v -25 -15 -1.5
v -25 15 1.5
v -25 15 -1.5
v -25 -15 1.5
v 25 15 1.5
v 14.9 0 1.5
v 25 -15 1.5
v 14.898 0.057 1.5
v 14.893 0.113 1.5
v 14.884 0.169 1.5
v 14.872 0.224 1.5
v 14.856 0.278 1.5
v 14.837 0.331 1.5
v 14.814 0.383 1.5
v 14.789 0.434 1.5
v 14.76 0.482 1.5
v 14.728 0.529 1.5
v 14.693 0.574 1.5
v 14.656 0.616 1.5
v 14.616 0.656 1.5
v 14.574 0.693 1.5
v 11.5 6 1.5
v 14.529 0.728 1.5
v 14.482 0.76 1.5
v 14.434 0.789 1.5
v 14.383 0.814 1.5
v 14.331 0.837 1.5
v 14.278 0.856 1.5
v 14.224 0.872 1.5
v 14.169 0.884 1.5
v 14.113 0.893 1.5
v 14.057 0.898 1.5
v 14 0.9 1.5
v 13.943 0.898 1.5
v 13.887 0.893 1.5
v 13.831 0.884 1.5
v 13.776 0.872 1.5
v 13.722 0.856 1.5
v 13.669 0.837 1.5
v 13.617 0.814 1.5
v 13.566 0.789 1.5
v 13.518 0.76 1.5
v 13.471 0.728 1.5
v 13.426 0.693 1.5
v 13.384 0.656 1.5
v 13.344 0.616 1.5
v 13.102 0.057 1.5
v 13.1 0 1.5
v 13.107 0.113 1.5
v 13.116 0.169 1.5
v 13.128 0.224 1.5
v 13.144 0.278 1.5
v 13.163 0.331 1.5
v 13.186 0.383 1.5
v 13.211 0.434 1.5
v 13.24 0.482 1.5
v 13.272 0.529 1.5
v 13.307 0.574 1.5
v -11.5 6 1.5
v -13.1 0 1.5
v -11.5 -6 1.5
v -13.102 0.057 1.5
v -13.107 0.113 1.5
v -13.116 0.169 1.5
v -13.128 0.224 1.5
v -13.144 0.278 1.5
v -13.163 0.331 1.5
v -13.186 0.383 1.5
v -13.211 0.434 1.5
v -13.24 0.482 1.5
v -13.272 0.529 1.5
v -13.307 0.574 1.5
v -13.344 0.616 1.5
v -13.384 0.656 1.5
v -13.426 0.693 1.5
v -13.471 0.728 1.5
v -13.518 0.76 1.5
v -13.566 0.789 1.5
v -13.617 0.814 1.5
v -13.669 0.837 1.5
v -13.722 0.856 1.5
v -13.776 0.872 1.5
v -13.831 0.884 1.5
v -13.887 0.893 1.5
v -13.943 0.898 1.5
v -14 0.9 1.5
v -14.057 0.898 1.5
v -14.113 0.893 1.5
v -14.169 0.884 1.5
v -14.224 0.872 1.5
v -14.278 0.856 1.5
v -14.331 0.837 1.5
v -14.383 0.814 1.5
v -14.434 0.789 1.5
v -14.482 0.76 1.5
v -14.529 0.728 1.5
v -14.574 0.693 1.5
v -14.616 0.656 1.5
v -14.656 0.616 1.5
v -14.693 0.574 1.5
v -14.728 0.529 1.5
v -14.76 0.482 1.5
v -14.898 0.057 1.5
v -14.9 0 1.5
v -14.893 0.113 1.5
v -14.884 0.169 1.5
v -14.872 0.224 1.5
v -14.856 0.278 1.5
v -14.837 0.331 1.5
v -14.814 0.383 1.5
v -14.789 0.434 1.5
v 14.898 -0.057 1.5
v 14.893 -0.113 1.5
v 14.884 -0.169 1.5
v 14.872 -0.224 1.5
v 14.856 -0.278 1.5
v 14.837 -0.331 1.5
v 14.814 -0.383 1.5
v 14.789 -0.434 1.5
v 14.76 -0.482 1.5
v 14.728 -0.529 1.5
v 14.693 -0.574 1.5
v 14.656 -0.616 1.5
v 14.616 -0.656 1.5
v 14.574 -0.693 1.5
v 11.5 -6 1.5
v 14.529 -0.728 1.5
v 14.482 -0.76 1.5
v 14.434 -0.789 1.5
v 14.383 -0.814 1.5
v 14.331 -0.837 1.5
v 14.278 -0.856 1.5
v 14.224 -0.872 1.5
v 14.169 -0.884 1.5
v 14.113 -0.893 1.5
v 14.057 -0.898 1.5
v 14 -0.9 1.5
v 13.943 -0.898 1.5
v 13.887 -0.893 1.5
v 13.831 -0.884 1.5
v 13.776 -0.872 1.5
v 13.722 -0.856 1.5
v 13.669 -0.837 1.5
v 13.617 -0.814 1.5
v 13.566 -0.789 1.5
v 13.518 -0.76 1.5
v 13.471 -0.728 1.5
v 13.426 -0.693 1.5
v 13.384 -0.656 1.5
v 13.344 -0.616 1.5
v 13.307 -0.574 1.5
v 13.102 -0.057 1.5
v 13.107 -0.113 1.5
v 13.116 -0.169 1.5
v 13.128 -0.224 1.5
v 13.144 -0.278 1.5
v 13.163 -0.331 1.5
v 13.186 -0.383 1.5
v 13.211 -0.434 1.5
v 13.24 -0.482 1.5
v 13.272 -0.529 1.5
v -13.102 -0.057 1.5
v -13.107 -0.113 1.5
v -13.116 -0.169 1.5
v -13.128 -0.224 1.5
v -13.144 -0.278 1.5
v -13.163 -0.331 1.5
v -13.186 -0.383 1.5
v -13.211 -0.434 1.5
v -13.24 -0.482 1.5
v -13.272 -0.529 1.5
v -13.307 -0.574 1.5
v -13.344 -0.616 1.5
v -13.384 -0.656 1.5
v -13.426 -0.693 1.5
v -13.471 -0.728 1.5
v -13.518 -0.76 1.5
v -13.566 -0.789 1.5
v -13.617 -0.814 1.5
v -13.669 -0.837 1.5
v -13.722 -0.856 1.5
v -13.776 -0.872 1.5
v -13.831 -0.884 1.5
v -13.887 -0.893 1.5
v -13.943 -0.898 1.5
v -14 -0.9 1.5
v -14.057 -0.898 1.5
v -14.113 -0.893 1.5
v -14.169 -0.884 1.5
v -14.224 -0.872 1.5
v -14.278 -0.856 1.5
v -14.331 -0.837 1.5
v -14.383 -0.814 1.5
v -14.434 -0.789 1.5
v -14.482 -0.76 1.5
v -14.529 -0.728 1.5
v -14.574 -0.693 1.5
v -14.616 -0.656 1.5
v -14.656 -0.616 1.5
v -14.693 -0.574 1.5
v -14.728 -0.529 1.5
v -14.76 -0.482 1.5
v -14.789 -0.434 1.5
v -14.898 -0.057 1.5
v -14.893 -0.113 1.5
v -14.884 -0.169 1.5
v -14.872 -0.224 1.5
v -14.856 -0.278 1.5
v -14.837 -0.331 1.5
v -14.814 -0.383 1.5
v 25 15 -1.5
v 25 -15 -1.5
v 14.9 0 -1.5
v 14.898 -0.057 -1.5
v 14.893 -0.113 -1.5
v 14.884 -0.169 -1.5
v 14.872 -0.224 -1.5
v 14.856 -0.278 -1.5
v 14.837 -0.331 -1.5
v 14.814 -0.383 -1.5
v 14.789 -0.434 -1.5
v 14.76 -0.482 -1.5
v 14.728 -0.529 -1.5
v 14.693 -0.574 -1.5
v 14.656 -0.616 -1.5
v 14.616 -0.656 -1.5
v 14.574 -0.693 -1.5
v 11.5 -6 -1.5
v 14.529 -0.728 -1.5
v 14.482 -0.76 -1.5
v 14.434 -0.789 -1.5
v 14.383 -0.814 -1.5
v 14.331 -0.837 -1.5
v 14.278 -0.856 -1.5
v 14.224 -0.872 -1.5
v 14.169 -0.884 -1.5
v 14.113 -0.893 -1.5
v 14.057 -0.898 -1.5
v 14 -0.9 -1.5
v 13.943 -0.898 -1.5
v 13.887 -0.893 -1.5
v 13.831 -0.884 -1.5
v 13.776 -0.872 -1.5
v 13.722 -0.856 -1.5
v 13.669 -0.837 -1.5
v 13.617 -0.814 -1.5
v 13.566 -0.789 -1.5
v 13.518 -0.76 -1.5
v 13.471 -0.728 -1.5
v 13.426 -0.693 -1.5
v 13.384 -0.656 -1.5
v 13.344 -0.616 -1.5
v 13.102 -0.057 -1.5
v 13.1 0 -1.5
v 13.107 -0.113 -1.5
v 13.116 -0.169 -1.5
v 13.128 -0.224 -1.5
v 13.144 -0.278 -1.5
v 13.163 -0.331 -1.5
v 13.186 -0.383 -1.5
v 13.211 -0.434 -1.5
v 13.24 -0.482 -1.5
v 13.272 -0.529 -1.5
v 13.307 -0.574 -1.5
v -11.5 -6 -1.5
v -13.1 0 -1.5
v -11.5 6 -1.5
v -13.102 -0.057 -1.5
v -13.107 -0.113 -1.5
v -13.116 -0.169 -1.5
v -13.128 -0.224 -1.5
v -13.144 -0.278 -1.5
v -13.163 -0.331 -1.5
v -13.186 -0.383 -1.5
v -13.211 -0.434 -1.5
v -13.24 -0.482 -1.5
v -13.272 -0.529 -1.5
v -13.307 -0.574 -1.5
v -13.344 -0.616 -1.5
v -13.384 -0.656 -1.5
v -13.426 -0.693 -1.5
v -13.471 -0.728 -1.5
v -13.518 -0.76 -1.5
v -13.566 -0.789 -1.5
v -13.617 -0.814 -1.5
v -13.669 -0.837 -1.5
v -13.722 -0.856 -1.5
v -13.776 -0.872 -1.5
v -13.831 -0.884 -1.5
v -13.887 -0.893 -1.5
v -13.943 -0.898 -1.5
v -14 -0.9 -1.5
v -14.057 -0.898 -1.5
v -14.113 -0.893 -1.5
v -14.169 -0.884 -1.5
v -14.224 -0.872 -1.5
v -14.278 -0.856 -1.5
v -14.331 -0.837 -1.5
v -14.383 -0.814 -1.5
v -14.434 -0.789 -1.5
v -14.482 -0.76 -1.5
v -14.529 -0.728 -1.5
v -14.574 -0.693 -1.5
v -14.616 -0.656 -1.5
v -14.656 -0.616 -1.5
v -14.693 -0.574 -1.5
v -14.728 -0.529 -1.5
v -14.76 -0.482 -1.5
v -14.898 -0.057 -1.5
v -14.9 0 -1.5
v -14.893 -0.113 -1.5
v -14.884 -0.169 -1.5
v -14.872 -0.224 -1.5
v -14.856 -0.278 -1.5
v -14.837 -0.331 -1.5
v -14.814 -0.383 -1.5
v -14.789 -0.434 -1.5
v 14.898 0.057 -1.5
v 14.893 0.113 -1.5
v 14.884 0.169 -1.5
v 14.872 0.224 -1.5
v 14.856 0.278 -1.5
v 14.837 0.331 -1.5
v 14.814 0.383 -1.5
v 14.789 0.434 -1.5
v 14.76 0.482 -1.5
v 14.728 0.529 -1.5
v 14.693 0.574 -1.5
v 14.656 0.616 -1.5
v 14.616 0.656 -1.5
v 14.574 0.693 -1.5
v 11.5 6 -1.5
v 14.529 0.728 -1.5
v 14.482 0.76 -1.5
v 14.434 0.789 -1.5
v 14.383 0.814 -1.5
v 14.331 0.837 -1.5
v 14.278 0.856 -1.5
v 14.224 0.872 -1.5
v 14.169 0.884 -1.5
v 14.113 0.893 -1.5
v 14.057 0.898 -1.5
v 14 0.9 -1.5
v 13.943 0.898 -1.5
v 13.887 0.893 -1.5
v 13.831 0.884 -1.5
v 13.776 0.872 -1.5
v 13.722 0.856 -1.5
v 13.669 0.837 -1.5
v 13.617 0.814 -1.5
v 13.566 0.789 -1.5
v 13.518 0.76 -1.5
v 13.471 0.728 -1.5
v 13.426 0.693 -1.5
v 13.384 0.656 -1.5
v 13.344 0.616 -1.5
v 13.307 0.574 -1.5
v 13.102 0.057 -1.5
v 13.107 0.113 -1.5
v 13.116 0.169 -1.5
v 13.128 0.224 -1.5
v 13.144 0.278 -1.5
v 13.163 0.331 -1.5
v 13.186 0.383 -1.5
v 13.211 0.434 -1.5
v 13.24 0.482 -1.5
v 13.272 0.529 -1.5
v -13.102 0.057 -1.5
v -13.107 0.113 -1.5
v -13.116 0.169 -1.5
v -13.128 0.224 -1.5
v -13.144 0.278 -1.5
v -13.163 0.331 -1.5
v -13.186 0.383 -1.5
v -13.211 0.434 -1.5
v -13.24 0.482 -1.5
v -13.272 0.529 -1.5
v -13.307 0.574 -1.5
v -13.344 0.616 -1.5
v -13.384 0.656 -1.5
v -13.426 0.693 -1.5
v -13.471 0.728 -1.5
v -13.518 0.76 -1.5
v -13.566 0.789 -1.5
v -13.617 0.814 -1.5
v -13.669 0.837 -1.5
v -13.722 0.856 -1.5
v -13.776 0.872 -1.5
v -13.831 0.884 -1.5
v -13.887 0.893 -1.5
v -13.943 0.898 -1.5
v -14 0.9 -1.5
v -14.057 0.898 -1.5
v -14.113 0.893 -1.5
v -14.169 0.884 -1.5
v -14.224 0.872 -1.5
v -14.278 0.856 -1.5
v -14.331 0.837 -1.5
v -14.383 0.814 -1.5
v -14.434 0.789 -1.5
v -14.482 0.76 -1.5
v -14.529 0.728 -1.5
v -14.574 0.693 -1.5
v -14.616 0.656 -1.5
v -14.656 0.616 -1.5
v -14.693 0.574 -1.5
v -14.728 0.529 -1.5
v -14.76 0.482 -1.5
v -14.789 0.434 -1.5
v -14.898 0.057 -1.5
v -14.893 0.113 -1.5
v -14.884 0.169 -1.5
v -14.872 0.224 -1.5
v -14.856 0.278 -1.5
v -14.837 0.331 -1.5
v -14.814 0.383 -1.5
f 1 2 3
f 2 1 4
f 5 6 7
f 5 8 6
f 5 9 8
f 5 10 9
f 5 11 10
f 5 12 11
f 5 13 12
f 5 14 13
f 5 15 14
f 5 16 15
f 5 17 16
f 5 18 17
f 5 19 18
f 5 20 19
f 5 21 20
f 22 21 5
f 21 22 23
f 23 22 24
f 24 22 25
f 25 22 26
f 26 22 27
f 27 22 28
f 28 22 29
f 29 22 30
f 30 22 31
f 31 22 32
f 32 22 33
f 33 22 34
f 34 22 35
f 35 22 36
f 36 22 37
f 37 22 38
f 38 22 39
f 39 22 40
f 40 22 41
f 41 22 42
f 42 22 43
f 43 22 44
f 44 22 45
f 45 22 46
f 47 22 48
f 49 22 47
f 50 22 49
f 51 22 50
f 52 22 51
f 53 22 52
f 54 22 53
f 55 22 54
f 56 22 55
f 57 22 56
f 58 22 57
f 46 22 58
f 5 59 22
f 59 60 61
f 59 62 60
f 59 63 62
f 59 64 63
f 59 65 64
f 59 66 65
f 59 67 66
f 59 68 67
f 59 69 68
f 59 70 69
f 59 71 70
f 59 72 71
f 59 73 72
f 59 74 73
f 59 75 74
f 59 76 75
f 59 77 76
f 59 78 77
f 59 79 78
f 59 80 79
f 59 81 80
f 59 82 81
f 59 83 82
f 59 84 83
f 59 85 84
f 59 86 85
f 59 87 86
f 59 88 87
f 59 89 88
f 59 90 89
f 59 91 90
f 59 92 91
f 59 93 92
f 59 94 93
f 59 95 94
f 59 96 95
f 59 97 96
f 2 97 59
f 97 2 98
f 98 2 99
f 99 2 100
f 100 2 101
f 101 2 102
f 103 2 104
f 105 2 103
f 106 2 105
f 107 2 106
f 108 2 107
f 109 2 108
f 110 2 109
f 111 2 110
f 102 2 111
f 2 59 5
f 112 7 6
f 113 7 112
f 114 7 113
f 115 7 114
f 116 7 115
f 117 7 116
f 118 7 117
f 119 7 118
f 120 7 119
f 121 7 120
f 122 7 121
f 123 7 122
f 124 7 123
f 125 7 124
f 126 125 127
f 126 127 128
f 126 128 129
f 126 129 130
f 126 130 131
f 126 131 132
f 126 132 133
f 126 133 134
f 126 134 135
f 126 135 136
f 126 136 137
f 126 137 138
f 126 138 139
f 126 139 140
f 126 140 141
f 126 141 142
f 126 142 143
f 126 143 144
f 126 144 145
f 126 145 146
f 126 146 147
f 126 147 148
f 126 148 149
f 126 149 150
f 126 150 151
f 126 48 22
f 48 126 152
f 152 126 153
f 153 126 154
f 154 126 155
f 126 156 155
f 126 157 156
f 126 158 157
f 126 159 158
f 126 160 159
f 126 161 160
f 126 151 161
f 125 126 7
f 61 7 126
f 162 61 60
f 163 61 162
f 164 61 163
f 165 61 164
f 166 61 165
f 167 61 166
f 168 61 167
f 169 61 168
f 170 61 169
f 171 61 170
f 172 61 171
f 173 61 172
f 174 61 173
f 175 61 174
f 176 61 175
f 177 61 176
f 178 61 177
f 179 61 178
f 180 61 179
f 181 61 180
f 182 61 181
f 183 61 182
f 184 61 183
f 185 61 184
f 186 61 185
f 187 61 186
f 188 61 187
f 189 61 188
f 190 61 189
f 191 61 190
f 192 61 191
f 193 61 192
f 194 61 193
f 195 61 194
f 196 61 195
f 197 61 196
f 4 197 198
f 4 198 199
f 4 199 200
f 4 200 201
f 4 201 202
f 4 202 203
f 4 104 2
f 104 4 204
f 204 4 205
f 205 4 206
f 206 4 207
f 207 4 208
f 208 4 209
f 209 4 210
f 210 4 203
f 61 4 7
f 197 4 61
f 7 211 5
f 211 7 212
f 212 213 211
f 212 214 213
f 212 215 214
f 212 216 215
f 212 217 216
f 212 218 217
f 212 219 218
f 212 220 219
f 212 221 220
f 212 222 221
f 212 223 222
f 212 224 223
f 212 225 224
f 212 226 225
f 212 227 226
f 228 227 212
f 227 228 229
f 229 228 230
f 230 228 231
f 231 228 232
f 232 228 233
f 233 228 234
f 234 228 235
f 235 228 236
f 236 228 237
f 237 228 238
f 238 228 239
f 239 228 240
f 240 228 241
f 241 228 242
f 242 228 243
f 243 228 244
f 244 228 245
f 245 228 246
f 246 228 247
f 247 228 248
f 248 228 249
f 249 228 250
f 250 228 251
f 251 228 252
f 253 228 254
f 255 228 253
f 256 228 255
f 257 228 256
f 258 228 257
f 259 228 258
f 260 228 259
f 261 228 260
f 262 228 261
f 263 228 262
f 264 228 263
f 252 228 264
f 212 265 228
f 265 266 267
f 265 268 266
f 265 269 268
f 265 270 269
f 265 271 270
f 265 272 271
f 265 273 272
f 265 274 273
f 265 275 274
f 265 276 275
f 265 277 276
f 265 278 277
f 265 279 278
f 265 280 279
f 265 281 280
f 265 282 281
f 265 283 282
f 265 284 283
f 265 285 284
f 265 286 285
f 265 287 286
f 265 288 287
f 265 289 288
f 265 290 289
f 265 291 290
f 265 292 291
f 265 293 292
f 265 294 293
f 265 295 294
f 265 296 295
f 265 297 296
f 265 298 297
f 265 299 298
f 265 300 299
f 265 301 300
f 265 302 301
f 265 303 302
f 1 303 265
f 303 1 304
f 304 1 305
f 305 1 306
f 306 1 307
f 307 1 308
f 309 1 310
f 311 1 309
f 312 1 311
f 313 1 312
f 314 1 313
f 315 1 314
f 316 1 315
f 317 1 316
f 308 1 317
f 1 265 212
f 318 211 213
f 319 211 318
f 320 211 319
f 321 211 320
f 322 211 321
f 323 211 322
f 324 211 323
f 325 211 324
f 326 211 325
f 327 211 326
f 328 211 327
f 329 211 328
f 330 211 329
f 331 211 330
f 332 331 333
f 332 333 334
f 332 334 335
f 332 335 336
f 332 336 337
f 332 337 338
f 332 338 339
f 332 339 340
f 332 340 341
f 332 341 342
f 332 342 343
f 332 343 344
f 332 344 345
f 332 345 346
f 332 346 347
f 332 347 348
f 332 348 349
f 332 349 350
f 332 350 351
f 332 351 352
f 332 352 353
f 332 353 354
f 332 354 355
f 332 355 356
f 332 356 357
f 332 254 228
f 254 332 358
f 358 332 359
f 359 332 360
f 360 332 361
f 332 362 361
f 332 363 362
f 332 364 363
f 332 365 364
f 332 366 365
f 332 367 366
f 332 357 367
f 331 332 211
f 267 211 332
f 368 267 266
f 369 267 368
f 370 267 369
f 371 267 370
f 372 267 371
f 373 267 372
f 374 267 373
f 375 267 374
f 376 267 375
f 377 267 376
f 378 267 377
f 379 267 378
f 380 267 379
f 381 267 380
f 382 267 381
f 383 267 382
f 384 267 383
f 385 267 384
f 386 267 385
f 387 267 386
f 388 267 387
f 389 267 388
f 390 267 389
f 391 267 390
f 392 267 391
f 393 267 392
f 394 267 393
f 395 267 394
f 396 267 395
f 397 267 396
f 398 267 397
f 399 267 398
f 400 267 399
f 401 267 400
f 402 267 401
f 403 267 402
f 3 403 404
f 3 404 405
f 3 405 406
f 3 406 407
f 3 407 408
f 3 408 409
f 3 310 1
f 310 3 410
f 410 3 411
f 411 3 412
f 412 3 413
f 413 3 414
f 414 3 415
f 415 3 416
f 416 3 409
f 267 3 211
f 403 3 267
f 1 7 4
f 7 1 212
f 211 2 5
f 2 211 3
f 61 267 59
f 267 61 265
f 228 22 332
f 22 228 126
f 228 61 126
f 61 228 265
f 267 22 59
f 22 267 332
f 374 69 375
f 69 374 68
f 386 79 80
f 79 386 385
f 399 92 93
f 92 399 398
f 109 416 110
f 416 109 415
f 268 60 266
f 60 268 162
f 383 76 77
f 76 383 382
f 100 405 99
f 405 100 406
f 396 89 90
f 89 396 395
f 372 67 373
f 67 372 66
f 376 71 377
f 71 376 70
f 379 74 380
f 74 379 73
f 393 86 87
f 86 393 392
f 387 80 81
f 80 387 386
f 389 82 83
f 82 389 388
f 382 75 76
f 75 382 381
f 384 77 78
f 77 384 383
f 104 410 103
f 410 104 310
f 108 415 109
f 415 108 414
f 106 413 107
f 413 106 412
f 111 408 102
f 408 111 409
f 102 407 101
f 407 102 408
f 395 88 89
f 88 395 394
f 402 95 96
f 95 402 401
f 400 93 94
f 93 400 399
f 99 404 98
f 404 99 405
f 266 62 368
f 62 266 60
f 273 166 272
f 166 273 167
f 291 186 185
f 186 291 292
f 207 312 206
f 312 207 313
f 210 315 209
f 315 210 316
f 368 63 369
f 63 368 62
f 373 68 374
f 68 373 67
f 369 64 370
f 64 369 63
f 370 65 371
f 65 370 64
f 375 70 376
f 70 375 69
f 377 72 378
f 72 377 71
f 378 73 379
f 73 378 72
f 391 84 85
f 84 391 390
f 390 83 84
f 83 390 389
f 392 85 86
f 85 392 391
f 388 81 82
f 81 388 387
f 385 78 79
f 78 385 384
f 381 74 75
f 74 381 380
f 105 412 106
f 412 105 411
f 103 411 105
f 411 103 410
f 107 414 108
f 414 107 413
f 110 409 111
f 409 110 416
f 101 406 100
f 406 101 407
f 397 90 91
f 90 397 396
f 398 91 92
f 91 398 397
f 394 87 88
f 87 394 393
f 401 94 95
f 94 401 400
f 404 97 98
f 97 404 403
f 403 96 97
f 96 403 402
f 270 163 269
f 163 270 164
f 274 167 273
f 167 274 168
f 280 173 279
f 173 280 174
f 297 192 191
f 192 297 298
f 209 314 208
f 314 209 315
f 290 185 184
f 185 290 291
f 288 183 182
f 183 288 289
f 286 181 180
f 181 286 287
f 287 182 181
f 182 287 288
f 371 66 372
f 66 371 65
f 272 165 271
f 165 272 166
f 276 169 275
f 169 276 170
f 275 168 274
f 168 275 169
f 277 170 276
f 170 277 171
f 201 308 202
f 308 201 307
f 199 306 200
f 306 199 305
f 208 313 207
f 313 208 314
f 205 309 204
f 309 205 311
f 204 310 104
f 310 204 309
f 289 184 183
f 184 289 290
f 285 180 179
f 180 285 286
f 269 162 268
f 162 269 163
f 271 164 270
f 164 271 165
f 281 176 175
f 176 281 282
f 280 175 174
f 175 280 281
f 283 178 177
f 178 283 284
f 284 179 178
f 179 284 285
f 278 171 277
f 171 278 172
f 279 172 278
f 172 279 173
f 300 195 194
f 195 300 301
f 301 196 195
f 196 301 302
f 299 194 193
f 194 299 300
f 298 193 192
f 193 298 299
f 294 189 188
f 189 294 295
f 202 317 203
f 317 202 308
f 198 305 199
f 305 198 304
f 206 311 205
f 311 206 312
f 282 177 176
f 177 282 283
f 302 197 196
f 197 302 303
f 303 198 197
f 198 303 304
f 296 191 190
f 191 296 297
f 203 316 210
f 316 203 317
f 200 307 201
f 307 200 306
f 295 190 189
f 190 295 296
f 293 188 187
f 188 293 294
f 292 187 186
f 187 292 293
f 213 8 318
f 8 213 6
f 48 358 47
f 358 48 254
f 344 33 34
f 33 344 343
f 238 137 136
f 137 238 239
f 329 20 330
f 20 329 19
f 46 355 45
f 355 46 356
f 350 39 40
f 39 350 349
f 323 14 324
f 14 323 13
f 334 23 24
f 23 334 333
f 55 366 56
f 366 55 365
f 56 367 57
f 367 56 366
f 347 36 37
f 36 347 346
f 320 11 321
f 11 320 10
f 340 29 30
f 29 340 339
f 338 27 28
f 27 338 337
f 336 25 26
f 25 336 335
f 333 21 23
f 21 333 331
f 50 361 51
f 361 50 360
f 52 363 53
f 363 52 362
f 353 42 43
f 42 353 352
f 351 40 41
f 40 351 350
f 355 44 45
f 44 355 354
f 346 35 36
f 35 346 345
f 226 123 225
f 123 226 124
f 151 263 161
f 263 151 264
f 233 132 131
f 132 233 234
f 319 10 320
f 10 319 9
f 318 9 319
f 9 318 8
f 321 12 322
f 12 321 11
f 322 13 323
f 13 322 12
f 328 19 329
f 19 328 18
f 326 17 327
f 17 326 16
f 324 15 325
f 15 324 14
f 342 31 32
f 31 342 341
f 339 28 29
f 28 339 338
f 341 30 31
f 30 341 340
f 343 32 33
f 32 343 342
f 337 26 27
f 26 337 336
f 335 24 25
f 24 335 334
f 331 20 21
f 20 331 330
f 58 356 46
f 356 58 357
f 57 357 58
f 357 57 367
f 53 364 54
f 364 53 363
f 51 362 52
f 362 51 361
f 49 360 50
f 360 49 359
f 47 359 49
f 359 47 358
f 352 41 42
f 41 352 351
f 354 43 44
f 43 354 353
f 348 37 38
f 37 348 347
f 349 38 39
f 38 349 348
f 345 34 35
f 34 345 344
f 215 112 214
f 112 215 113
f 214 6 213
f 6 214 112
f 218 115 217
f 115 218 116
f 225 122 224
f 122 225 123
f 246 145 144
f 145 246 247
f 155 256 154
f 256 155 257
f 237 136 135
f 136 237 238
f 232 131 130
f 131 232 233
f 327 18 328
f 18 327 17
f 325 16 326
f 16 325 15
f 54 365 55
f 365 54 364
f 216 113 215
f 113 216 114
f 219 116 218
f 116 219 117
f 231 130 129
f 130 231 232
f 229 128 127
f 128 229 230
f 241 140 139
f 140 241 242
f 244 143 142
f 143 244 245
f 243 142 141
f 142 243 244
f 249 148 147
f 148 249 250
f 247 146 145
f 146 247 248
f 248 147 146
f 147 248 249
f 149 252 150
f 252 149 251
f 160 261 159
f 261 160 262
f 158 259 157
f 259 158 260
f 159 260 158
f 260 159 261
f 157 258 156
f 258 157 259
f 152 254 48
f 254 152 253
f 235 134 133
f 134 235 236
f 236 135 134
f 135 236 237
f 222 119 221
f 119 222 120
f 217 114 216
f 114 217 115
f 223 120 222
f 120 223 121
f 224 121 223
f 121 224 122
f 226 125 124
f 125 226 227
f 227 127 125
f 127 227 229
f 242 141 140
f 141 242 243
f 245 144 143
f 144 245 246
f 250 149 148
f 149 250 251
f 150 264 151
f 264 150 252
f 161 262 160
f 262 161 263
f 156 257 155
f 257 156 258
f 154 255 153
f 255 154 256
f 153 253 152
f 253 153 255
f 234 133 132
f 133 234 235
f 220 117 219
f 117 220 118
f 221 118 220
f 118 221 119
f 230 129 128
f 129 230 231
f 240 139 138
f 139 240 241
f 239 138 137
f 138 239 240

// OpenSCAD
// Title: Крепление для сервопривода (Servo Mount)
// Description: Пластина 5x3 см с центральным вырезом и отверстиями для крепления сервопривода.
// Author: AI Assistant
// Date: 2023-10-28
// License: MIT

/*
 * =====================================================================
 * Параметры для настройки (Parameters for Customization)
 * =====================================================================
 */

// --- Параметры пластины ---
plate_width = 50;      // [mm] Ширина пластины (5 см)
plate_length = 30;     // [mm] Длина пластины (3 см)
plate_thickness = 3;   // [mm] Толщина пластины

// --- Параметры центрального выреза ---
cutout_width = 23;     // [mm] Ширина выреза
cutout_length = 12;    // [mm] Длина выреза

// --- Параметры крепежных отверстий ---
mount_hole_diameter = 1.8; // [mm] Диаметр отверстий
mount_hole_distance = 28;  // [mm] Расстояние между центрами отверстий

// --- Качество модели ---
$fn = 100;

/*
 * =====================================================================
 * Основной код (Main Code)
 * =====================================================================
 * Используем `difference()` для вычитания выреза и отверстий из основной пластины.
 */

difference() {
    // 1. Создаем основное тело пластины.
    // `center = true` центрирует объект относительно начала координат.
    cube([plate_width, plate_length, plate_thickness], center = true);
    
    // 2. Вырезаем центральный прямоугольный вырез.
    // Делаем его немного выше пластины, чтобы гарантировать чистый проход.
    cube([cutout_width, cutout_length, plate_thickness + 2], center = true);
    
    // 3. Вырезаем крепежные отверстия.
    // Они расположены симметрично относительно центра.
    // Расстояние от центра до каждого отверстия равно половине `mount_hole_distance`.
    hole_offset_x = mount_hole_distance / 2;
    
    // Левое отверстие
    translate([-hole_offset_x, 0, 0]) {
        cylinder(d = mount_hole_diameter, h = plate_thickness + 2, center = true);
    }
    
    // Правое отверстие
    translate([hole_offset_x, 0, 0]) {
        cylinder(d = mount_hole_diameter, h = plate_thickness + 2, center = true);
    }
}
